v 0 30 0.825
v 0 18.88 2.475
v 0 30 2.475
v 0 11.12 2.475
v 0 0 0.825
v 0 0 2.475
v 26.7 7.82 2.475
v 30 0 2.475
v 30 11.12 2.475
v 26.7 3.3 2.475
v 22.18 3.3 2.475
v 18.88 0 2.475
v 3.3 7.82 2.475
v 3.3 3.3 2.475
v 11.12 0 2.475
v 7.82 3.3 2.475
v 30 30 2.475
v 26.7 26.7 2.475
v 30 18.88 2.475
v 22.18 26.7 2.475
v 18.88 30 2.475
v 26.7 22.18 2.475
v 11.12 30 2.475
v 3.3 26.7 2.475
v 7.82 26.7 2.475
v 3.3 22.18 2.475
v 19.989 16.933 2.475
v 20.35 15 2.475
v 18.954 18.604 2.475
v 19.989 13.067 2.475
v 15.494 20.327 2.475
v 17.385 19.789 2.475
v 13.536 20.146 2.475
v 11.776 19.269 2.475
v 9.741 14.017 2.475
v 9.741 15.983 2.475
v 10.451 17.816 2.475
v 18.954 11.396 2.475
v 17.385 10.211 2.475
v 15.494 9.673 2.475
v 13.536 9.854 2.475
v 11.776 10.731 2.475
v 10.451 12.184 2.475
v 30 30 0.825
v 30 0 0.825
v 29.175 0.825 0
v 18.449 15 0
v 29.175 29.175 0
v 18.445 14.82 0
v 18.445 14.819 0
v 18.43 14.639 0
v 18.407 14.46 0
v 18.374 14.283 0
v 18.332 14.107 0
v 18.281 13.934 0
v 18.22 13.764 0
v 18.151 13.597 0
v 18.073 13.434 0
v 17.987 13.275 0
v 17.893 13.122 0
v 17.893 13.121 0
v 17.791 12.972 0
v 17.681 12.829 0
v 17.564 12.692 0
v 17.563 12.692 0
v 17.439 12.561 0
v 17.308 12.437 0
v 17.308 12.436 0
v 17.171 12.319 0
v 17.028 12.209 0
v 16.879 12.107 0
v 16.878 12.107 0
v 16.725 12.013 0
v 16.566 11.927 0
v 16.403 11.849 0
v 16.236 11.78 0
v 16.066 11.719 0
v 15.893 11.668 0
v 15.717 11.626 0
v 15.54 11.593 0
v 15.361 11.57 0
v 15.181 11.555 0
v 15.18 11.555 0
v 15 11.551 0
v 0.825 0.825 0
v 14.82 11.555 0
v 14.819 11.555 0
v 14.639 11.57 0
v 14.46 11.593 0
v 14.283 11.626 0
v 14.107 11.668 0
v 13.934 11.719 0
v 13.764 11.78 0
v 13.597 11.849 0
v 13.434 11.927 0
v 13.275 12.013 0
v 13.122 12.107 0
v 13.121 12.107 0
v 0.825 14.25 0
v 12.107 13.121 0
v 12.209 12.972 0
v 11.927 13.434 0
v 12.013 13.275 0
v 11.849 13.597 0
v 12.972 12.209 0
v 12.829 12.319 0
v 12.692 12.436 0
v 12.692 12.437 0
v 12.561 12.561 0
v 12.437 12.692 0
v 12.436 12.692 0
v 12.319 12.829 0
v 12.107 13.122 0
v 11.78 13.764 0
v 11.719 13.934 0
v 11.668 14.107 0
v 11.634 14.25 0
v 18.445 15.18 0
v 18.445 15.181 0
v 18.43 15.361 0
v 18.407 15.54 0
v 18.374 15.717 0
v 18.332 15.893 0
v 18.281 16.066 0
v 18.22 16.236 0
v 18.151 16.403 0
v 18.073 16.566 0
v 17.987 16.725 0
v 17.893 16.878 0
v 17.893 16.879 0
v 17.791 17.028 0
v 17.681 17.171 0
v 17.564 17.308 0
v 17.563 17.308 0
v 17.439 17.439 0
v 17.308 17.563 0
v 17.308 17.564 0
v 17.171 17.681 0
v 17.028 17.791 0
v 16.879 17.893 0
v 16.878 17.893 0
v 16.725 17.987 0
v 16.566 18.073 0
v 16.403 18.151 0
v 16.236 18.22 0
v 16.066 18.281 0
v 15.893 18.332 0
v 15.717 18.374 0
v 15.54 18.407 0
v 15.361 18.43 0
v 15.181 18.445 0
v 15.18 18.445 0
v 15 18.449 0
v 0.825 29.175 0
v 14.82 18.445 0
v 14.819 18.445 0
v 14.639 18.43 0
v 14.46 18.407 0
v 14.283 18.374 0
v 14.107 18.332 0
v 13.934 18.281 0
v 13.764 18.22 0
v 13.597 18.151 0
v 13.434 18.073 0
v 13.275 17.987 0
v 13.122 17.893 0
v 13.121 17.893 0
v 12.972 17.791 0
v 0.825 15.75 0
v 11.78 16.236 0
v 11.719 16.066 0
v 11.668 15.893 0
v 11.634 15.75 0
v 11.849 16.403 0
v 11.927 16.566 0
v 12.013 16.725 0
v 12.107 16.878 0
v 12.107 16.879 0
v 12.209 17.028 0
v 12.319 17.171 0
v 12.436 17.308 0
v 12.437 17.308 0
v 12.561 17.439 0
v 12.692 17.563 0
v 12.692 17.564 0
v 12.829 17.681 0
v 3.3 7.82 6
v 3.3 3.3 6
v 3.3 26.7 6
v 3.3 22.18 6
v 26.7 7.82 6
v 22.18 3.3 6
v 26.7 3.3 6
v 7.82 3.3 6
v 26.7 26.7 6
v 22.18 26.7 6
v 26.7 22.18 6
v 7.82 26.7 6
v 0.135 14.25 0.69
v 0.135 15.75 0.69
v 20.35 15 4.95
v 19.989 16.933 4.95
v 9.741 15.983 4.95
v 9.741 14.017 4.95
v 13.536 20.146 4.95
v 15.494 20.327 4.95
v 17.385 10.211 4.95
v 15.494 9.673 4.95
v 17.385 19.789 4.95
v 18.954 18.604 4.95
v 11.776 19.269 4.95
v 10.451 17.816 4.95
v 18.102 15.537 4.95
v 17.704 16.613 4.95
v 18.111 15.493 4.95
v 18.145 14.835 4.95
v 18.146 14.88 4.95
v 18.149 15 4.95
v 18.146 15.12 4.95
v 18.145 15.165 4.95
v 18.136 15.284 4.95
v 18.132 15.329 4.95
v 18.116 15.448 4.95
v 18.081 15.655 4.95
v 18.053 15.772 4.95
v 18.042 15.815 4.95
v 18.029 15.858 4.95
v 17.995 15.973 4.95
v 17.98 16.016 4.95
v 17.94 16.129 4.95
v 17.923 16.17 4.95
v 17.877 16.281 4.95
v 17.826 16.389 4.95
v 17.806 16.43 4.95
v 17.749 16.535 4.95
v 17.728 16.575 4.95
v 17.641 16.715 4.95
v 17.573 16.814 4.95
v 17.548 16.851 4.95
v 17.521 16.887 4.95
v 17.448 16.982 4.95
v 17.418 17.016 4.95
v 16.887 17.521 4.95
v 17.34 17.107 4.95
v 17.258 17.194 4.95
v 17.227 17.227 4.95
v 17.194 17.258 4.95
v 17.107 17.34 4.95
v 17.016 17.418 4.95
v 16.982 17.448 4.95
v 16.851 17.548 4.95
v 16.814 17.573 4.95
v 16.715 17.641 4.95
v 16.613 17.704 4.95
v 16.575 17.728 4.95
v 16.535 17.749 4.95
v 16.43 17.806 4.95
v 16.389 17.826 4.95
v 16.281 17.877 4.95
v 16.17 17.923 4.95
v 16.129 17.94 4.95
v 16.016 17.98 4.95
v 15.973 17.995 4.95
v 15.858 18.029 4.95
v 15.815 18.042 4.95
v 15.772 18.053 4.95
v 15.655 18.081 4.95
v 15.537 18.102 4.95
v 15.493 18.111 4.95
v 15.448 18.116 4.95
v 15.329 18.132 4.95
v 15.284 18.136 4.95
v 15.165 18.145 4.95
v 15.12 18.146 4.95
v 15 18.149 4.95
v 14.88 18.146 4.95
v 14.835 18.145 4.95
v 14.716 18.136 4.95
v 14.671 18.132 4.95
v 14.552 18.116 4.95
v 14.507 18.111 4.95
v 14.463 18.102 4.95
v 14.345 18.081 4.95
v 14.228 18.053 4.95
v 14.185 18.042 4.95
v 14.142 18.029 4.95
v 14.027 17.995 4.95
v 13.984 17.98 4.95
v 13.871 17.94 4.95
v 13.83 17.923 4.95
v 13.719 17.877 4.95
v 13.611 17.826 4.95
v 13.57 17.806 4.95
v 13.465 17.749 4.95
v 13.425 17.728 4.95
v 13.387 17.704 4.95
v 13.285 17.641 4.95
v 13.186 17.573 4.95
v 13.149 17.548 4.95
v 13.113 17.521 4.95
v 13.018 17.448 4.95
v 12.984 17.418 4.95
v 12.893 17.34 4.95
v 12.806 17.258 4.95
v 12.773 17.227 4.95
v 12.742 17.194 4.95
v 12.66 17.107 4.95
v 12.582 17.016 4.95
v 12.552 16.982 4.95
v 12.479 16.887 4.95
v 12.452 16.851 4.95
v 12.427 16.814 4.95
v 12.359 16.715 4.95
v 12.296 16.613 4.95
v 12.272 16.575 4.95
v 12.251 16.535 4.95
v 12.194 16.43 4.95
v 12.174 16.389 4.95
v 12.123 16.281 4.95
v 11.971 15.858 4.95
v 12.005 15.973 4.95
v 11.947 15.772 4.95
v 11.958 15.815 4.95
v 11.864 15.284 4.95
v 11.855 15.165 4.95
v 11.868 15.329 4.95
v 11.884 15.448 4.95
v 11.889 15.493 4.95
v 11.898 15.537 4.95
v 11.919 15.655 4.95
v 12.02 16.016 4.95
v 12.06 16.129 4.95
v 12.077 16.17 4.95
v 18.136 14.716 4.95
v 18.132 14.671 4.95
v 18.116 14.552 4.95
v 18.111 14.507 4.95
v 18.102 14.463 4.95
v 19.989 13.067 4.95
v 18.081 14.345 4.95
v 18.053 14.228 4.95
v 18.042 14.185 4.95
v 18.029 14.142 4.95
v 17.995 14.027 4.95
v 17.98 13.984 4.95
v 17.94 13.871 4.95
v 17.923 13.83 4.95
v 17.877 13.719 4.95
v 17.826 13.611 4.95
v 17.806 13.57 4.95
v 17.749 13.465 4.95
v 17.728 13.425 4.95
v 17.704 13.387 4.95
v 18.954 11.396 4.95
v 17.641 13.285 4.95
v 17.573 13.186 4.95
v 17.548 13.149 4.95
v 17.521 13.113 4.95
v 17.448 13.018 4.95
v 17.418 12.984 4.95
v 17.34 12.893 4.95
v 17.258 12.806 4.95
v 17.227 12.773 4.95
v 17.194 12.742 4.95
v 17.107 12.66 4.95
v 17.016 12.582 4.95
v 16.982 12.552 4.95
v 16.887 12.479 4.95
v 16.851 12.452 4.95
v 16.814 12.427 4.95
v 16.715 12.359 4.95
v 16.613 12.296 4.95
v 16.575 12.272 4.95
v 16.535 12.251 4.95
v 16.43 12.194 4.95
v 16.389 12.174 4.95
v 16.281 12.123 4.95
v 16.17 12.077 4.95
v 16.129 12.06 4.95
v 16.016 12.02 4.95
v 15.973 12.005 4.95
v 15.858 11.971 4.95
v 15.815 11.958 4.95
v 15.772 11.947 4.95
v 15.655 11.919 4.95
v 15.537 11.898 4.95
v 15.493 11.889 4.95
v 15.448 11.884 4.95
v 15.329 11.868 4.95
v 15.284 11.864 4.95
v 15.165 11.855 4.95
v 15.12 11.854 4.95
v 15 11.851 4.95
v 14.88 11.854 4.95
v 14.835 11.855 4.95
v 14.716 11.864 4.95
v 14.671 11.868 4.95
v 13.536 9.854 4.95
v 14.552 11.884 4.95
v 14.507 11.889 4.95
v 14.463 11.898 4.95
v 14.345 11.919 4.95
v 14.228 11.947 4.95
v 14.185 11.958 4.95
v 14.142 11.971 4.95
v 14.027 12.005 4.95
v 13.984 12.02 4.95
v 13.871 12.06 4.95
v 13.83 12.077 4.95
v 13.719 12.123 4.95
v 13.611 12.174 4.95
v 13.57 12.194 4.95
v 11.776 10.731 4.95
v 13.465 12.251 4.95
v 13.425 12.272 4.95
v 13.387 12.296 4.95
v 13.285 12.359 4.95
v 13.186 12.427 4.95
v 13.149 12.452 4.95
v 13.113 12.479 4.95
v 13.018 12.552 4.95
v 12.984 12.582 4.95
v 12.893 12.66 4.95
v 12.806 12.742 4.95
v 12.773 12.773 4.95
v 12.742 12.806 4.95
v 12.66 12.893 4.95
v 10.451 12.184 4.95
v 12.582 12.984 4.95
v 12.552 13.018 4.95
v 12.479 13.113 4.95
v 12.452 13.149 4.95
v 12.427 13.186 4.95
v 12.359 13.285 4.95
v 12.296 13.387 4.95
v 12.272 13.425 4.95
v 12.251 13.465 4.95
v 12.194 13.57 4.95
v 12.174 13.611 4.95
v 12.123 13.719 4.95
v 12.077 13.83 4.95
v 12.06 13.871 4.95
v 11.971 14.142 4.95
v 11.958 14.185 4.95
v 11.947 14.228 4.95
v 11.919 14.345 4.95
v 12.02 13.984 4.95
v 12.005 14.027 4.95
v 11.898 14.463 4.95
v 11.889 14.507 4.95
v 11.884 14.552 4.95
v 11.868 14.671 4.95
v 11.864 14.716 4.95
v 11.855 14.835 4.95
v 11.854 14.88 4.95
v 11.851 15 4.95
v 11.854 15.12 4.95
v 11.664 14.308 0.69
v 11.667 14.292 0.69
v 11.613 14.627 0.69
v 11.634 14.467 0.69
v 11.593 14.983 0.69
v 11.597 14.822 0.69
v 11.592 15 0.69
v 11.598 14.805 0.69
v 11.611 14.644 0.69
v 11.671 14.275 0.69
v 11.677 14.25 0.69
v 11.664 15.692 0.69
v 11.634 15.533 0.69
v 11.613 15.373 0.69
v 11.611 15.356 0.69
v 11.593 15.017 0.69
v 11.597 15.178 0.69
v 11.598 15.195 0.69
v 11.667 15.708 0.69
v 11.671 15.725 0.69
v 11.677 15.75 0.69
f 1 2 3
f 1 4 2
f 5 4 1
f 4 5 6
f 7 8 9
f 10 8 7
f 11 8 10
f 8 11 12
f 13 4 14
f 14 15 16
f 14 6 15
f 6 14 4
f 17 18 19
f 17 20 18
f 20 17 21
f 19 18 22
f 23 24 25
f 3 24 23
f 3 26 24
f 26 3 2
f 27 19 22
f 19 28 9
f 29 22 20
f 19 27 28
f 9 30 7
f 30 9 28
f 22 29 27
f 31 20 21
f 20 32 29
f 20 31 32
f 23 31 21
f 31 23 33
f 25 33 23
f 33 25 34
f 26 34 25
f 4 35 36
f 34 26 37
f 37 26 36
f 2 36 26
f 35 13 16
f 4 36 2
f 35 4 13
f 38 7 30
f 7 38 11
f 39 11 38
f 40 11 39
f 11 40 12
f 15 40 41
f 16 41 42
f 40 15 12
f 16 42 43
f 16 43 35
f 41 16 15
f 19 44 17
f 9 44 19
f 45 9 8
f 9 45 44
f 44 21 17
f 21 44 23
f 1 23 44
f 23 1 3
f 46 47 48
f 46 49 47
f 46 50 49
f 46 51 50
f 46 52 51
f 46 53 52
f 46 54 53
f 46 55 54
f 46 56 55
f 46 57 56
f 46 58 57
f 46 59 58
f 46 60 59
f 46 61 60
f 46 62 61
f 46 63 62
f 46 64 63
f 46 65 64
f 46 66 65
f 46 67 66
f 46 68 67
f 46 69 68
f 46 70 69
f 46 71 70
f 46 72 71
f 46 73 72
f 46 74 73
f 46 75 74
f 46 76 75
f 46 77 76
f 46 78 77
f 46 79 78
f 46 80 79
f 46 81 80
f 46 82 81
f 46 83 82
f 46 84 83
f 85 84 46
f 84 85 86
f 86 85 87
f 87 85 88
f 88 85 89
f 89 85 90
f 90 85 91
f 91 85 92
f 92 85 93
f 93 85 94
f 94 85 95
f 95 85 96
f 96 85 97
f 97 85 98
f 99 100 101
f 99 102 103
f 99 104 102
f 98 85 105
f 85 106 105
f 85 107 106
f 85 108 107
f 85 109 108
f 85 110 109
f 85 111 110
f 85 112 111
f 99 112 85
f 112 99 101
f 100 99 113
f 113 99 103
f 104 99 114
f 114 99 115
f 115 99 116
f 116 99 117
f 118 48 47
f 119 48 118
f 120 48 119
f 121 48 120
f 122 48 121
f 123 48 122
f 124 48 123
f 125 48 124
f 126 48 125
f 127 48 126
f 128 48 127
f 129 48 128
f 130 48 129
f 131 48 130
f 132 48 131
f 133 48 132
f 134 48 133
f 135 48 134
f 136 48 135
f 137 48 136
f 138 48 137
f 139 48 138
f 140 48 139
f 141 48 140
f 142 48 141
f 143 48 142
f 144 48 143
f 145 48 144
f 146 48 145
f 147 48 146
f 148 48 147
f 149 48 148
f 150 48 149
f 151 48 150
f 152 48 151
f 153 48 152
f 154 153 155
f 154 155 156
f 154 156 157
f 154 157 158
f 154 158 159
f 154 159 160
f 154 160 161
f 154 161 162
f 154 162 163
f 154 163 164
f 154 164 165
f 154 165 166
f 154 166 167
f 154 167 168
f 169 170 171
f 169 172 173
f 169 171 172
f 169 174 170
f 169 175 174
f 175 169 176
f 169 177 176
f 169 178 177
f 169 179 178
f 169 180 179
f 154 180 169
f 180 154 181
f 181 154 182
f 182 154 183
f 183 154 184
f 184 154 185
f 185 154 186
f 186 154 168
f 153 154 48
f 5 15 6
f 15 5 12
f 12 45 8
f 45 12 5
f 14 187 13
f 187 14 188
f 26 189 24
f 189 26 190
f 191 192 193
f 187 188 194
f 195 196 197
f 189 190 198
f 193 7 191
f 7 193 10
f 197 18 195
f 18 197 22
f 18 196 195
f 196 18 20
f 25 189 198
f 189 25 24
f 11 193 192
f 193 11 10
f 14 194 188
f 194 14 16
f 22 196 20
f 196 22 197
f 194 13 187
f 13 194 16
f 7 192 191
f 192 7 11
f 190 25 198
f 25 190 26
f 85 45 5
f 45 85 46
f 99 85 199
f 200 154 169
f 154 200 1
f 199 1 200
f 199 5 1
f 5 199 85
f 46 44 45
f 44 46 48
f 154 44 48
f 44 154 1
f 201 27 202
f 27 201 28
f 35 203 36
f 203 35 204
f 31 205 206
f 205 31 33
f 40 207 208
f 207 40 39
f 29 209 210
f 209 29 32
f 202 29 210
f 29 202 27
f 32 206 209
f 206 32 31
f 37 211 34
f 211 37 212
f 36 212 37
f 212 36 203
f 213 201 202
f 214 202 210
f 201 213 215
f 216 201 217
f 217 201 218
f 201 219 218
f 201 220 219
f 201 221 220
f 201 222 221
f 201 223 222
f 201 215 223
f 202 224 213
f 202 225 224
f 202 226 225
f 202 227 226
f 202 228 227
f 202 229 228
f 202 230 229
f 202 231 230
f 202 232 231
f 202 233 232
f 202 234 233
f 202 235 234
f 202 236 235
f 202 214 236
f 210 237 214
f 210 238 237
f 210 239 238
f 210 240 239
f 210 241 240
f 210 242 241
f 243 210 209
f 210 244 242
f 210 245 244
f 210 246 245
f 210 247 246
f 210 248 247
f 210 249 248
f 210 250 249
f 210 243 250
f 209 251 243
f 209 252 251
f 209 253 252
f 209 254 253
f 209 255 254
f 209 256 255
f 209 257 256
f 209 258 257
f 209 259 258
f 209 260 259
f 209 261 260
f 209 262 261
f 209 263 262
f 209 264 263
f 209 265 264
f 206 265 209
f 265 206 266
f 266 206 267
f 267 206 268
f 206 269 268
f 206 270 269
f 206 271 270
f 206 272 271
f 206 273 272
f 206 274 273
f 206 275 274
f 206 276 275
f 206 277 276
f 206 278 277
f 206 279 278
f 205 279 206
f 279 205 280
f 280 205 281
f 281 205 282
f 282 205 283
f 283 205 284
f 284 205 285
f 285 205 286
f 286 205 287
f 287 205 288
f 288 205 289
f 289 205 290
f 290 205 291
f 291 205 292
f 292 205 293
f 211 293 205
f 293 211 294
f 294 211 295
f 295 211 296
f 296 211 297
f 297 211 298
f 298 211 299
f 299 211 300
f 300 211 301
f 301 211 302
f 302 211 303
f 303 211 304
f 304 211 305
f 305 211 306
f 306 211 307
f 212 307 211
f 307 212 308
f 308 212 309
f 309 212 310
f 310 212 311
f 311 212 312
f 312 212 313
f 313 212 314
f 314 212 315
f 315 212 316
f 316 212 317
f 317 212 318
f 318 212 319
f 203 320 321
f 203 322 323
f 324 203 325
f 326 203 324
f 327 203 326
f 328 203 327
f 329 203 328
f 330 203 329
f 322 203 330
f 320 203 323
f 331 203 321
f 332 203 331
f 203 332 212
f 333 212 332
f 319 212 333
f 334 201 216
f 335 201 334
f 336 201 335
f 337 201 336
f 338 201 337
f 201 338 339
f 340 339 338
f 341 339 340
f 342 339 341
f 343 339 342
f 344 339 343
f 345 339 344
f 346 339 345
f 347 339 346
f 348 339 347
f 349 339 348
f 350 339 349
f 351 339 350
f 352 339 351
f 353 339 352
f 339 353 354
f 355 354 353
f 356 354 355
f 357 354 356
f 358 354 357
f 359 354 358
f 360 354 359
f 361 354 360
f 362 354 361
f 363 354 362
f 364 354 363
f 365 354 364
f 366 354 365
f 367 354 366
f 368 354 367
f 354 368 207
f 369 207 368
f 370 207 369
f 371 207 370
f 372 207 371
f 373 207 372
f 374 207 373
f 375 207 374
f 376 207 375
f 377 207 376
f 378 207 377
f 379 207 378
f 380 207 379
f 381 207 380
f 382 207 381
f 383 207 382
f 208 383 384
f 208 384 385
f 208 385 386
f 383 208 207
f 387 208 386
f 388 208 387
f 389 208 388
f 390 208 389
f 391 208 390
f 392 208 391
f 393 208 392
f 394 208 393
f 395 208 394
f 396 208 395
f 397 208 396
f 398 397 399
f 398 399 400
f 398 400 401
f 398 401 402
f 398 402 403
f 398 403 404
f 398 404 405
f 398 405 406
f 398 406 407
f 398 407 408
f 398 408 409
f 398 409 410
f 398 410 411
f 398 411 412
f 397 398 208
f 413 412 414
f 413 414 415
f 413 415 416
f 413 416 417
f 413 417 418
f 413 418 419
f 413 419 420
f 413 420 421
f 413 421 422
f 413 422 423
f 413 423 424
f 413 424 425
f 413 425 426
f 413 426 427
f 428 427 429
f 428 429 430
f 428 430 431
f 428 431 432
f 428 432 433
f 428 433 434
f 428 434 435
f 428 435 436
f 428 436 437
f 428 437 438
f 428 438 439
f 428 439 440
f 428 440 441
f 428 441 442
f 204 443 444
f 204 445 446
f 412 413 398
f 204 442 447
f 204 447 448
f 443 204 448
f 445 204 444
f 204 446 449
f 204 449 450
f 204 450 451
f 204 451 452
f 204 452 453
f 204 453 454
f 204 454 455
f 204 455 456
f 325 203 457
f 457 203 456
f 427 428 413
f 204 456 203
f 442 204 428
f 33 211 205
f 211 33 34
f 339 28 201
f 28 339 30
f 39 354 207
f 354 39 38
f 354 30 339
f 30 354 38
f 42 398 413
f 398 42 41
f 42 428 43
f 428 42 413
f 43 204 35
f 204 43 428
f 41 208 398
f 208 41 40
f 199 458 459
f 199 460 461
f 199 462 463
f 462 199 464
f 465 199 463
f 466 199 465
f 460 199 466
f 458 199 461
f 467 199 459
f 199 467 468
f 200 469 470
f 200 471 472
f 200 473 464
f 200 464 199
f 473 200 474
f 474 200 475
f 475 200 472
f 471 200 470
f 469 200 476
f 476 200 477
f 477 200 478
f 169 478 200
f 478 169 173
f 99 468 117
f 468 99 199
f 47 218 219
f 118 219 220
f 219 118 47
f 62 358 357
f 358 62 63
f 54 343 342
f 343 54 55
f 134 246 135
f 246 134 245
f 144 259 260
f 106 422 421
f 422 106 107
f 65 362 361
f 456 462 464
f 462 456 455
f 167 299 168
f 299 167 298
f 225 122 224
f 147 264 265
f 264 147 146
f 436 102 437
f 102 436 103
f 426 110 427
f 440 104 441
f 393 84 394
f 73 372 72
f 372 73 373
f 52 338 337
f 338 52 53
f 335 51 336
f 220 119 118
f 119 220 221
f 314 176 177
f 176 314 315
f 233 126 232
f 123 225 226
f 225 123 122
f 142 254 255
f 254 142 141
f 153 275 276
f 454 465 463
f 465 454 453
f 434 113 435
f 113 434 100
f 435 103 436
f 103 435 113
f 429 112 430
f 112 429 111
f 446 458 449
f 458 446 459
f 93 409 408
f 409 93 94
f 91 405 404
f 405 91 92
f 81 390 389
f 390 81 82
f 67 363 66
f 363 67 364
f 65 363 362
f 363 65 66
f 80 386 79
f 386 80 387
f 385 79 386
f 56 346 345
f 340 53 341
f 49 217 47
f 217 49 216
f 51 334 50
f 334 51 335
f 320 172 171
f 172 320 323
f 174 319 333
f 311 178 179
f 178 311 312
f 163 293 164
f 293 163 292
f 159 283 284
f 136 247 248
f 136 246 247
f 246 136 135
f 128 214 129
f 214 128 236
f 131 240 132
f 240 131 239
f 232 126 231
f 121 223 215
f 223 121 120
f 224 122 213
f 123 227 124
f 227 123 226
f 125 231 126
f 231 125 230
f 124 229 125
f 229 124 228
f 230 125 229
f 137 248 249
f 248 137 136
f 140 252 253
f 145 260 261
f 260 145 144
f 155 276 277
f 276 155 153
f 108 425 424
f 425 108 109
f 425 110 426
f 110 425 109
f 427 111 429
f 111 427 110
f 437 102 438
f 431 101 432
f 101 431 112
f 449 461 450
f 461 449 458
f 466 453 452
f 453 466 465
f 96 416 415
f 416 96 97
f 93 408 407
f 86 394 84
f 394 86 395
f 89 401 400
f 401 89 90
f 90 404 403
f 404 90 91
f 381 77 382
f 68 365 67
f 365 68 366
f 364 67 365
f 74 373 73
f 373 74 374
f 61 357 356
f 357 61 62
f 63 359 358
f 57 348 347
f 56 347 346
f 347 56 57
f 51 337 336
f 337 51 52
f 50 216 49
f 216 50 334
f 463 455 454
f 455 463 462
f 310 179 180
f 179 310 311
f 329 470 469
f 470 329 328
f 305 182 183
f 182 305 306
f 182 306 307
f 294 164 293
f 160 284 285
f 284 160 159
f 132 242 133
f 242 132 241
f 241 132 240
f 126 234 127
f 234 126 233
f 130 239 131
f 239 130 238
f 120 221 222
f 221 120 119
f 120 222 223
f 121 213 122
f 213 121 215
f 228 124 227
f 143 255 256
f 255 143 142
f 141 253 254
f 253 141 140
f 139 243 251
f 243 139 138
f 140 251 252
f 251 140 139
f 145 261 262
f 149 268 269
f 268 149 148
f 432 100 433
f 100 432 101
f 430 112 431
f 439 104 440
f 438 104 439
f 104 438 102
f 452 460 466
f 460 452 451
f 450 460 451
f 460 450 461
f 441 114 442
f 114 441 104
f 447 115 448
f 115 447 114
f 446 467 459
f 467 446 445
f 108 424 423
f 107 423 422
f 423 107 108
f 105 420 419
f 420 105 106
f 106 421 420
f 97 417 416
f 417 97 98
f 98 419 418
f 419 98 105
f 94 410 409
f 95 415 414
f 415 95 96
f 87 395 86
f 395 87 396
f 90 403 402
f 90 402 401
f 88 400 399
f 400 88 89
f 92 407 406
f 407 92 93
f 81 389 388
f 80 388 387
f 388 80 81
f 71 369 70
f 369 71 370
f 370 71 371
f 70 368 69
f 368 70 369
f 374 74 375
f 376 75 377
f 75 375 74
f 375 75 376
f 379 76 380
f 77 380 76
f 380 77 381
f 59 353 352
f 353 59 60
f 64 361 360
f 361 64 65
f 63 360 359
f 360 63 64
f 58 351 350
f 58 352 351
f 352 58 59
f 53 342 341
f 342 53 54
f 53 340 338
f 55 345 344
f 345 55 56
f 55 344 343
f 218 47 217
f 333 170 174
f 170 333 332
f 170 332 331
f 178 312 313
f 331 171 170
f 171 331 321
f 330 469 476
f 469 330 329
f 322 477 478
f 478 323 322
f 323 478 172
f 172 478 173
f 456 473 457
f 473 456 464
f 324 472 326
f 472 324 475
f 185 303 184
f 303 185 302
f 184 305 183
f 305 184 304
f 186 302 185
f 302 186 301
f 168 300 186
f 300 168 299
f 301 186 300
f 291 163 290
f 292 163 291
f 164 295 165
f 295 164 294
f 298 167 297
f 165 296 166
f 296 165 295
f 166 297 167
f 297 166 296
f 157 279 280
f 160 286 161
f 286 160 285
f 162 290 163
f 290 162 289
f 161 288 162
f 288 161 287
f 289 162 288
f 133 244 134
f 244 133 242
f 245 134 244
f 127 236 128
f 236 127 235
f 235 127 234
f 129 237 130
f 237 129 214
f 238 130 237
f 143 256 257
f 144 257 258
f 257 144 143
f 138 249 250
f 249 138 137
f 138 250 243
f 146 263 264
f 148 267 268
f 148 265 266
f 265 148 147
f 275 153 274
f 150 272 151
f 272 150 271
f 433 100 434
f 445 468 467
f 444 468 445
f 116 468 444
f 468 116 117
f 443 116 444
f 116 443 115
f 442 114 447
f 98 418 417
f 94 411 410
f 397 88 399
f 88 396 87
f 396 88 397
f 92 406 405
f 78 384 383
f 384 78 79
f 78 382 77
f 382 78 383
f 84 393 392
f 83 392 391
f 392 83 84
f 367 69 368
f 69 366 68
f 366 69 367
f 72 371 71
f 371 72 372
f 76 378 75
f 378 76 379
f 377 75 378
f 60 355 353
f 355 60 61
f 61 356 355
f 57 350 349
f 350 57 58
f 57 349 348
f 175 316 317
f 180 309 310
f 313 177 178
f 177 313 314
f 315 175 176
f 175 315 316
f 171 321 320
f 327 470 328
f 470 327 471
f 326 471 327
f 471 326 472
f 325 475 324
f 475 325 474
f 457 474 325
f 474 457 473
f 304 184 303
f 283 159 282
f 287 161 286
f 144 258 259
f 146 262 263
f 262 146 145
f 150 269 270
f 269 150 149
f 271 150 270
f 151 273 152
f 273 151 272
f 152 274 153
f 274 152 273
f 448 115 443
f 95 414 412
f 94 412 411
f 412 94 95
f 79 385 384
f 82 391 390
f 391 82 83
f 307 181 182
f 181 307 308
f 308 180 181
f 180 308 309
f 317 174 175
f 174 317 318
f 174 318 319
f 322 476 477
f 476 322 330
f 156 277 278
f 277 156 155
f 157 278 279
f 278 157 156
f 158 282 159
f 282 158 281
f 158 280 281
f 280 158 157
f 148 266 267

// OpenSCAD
// file: settings.scad
cube_width=30;
cube_height=16;
cube_thickness=3.3;

cap_width=30;
cap_height=6;
cap_thickness=3.3;

glyph_depth=0.7;
glyph_thickness=1.5;

photo_resitor_hole_r = 3.1;
spring_contact_hole_r = 3.35;
// file: cap_1x1.scad
include <settings.scad>

module cap_1x1(width, height, thickness, holes_mask)
{
    width1=width-thickness;
    difference()
    {
        union()
        {
            cube([width, width, thickness*3/4]);
            translate([thickness,thickness,0])cube([width-2*thickness, width-2*thickness, height]);
        }
        union()
        {
            translate([width/2,width/2,0])rotate([0,0,45])translate([-width1/2,-width1/2,thickness*3/4]) cube([width1,width1,height]);
                        //corners
            translate([0,0.25*thickness,0])rotate([45,0,0]) translate([-0.5*width, -width, -0.5*height]) cube([2*width, width, 2*height]);
            translate([0.25*thickness,0,0]) rotate([0,-45,0]) translate([-width, -0.5*width, -0.5*height]) cube([width, 2*width, 2*height]);
            translate([width-0.25*thickness,0,0]) rotate([0,45,0]) translate([0, 0, -0.5*height]) cube([width, 2*width, 2*height]);
            translate([0,width-0.25*thickness,0]) rotate([-45,0,0]) translate([-0.5*width, 0, -0.5*height]) cube([2*width, width, 2*height]);
            
            if (holes_mask >= 8)
            {
                translate([width/2, thickness-1.5, -0.5]) cylinder(r=1.15, h=height*1.5, $fn=80);
            }
            if ((holes_mask%8) >= 4)
            {
                translate([width/2, width-thickness+1.5, -0.5]) cylinder(r=1.15, h=height*1.5, $fn=80);
            }
            if ((holes_mask%4)>= 2)
            {
                translate([thickness-1.5, width/2, -0.5]) cylinder(r=1.15, h=height*1.5, $fn=80);
            }
            if (holes_mask%2 >= 1)
            {
                translate([width-thickness+1.5, width/2, -0.5]) cylinder(r=1.15, h=height*1.5, $fn=80);
            }
        }
    }
}

cap_1x1(cap_width, cap_height, cap_thickness, 9);
//ring(10,1,1);
//arrow(1, 20, 3, 1);
//transistor_npn(30, 1, 1);
// main file
use <cap_1x1.scad>
include <settings.scad>

module cap_1x1_wireIo(width, height, thickness)
{
    difference()
    {
        union()
        {
            cap_1x1(width, height, thickness, 0);
            translate([width/2,width/2,0]) cylinder(r=(spring_contact_hole_r+2), h=thickness*1.5);
        }
        translate([0,(width-glyph_thickness)/2,-0.01]) cube([width/2, glyph_thickness, glyph_depth]);
        translate([width/2,width/2,-0.01])cylinder(r1=spring_contact_hole_r+0.1, r2=spring_contact_hole_r-0.3, h=2*thickness, $fn=120);
    }
}

cap_1x1_wireIo(cap_width, cap_height, cap_thickness);
